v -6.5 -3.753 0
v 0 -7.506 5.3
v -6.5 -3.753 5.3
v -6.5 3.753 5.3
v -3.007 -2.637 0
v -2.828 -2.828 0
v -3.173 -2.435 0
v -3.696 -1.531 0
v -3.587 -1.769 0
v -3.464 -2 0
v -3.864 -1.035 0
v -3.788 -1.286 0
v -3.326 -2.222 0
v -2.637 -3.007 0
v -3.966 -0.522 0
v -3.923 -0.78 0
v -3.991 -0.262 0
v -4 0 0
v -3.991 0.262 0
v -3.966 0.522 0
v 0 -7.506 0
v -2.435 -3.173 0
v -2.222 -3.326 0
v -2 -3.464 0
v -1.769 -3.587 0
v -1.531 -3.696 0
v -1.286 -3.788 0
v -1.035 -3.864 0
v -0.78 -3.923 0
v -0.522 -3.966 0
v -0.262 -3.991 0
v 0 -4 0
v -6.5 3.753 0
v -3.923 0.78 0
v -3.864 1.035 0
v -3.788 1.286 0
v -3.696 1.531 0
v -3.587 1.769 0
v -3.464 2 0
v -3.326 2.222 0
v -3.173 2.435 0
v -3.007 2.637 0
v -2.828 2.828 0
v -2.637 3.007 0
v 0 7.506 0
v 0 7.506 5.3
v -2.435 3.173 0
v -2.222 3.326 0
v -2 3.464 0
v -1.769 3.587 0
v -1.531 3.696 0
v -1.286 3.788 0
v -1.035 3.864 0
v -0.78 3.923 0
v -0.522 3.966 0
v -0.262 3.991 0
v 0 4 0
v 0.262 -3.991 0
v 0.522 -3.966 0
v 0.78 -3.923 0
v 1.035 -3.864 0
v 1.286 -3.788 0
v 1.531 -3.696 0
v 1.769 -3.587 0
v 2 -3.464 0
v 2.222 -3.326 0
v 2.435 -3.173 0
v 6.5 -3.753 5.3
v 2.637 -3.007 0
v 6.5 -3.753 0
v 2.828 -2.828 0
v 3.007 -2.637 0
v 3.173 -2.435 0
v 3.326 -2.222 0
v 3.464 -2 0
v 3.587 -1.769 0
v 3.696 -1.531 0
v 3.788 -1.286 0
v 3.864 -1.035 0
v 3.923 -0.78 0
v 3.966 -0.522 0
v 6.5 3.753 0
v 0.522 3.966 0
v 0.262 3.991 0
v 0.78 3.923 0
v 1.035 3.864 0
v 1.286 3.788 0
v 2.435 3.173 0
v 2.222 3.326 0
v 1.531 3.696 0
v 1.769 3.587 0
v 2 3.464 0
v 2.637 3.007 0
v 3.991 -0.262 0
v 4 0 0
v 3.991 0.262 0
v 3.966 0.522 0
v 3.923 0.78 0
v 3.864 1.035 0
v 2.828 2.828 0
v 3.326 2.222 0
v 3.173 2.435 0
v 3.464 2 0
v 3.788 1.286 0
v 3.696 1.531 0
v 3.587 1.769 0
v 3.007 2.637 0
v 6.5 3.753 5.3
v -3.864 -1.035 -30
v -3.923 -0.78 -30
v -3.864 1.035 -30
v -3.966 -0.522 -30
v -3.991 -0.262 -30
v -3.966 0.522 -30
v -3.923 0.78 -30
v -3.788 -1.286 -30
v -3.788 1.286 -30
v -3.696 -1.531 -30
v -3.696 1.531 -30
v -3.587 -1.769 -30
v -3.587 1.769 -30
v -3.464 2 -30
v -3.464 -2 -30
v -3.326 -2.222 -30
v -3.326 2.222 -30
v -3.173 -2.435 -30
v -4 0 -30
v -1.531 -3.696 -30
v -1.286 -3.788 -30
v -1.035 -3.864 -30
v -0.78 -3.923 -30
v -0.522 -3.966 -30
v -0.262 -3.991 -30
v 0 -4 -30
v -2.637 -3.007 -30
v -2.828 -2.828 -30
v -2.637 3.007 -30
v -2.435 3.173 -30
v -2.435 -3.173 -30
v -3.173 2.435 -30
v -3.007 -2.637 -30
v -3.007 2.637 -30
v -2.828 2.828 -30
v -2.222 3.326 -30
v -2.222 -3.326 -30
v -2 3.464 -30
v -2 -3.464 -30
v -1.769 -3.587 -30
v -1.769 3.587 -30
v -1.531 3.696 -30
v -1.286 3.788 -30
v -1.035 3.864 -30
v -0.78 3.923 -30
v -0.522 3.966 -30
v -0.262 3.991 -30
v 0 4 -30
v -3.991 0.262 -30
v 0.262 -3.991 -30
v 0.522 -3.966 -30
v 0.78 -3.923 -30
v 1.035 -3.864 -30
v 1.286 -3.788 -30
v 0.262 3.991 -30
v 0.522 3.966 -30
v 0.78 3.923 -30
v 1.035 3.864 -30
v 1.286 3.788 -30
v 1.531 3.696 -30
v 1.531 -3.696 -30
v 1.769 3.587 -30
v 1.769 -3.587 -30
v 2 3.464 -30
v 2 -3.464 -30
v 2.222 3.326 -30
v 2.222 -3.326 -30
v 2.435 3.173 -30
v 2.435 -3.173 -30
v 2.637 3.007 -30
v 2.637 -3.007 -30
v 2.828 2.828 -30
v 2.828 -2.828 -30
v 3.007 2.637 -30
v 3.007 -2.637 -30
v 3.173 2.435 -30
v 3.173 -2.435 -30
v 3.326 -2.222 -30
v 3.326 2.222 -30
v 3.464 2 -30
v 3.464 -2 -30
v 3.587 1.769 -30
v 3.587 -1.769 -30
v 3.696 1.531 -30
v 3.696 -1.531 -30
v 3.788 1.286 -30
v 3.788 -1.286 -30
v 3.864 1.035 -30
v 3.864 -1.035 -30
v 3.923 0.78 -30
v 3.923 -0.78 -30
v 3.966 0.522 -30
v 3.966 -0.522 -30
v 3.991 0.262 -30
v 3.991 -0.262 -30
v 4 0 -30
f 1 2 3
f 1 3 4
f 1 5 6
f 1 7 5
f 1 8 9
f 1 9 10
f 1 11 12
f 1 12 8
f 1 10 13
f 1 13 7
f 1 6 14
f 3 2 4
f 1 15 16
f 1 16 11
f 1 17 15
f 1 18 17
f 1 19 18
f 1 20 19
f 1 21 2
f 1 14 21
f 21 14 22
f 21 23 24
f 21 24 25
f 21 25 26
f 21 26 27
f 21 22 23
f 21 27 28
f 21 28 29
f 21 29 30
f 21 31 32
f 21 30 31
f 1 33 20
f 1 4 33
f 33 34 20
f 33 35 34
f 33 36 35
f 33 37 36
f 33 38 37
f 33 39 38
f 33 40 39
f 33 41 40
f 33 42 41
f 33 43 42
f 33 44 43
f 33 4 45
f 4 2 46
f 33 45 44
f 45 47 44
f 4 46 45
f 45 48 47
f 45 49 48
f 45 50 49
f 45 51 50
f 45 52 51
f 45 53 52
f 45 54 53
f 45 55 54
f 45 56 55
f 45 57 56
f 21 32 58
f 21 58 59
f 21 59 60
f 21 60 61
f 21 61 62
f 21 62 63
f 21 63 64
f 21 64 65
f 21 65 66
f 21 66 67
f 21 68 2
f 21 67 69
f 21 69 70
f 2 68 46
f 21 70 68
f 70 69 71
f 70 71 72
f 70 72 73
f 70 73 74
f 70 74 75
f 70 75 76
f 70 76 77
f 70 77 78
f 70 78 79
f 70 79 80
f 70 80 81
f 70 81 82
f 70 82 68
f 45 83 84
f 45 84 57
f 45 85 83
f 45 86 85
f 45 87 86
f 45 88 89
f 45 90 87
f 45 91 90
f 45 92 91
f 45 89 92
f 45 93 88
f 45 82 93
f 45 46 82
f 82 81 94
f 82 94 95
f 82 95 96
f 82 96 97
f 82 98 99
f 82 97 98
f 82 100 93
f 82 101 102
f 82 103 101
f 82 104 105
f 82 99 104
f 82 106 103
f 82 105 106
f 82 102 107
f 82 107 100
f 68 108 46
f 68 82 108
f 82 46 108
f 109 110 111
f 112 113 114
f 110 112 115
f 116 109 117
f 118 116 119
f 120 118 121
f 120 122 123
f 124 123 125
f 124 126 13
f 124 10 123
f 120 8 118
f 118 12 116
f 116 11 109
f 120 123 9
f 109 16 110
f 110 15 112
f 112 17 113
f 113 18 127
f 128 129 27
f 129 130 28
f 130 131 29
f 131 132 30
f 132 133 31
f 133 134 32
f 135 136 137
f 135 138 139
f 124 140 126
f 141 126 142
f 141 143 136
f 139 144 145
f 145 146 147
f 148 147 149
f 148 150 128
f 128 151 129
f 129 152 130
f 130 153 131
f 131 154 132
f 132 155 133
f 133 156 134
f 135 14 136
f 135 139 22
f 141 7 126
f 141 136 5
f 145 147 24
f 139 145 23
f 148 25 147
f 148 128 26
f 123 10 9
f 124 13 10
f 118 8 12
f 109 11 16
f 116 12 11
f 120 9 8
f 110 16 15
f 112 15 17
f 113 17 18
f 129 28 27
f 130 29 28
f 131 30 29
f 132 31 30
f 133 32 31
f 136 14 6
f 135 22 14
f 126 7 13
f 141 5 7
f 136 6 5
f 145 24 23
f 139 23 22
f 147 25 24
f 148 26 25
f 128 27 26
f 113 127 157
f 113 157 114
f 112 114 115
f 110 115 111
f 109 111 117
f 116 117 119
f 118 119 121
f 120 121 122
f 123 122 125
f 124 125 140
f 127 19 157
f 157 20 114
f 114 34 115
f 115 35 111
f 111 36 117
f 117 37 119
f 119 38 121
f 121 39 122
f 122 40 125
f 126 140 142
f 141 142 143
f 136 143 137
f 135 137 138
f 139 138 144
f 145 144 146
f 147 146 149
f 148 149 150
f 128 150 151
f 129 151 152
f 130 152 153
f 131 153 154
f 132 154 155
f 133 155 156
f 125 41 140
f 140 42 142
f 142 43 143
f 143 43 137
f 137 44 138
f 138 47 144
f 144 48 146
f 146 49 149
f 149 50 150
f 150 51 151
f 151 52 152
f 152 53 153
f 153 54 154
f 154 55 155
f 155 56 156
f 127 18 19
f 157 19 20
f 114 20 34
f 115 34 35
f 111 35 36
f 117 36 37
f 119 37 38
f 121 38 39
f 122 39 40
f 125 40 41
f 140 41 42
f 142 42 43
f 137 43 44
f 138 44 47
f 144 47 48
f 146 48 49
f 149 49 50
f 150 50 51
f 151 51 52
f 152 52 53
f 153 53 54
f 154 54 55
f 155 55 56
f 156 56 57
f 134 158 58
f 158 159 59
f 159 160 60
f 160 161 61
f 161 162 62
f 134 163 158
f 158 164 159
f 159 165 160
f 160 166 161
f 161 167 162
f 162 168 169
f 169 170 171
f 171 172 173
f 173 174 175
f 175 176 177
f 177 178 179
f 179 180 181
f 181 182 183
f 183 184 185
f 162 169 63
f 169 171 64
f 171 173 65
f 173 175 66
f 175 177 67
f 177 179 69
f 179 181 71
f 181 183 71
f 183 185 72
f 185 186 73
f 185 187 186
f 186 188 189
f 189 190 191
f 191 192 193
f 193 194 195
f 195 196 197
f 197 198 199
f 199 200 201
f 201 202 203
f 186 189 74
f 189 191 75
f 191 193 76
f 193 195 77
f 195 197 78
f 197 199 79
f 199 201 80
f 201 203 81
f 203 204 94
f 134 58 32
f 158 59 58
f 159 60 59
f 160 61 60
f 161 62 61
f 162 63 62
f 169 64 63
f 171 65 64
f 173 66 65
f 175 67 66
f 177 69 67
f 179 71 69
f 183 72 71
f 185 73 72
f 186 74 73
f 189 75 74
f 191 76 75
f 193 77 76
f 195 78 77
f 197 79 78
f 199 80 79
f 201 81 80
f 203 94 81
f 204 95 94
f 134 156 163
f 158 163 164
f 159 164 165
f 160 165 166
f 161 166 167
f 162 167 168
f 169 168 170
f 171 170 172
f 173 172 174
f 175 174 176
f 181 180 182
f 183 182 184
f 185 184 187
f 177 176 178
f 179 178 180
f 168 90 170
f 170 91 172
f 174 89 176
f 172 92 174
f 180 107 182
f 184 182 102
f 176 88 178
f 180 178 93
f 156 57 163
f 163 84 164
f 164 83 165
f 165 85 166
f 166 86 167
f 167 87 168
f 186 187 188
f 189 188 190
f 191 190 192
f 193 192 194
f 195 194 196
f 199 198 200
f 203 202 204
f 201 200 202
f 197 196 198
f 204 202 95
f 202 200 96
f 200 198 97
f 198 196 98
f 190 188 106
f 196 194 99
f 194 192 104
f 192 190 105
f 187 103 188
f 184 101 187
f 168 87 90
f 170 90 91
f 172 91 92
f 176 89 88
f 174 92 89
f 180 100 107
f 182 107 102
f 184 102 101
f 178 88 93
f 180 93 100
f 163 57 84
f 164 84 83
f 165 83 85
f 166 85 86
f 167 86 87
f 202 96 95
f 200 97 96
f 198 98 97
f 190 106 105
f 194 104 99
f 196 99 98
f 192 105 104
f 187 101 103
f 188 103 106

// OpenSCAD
// M8 六角ボルト（ねじ山省略）
// 頭部底面が z=0、頭部は +Z 側、シャンクは -Z 側へ伸びる

// --- 寸法パラメータ (ISO 4014 / 4017 相当) ---
across_flats = 13;    // 頭部対辺距離 [mm]
head_height  = 5.3;   // 頭部高さ [mm]
shank_d      = 8;     // シャンク直径 [mm]
shank_len    = 30;    // シャンク長さ [mm]

// 対辺距離 -> 外接円直径（対角距離）
across_corners = across_flats / cos(30);

$fn = 96;

module hex_head() {
    // 六角柱: 円柱を6角形で近似し、辺が X 軸に平行になるよう 30° 回転
    rotate([0, 0, 30])
        cylinder(h = head_height, d = across_corners, $fn = 6);
}

module shank() {
    // 頭部底面(z=0)から -Z 方向へ伸びる円柱
    translate([0, 0, -shank_len])
        cylinder(h = shank_len, d = shank_d);
}

module m8_hex_bolt() {
    union() {
        hex_head();
        shank();
    }
}

m8_hex_bolt();
